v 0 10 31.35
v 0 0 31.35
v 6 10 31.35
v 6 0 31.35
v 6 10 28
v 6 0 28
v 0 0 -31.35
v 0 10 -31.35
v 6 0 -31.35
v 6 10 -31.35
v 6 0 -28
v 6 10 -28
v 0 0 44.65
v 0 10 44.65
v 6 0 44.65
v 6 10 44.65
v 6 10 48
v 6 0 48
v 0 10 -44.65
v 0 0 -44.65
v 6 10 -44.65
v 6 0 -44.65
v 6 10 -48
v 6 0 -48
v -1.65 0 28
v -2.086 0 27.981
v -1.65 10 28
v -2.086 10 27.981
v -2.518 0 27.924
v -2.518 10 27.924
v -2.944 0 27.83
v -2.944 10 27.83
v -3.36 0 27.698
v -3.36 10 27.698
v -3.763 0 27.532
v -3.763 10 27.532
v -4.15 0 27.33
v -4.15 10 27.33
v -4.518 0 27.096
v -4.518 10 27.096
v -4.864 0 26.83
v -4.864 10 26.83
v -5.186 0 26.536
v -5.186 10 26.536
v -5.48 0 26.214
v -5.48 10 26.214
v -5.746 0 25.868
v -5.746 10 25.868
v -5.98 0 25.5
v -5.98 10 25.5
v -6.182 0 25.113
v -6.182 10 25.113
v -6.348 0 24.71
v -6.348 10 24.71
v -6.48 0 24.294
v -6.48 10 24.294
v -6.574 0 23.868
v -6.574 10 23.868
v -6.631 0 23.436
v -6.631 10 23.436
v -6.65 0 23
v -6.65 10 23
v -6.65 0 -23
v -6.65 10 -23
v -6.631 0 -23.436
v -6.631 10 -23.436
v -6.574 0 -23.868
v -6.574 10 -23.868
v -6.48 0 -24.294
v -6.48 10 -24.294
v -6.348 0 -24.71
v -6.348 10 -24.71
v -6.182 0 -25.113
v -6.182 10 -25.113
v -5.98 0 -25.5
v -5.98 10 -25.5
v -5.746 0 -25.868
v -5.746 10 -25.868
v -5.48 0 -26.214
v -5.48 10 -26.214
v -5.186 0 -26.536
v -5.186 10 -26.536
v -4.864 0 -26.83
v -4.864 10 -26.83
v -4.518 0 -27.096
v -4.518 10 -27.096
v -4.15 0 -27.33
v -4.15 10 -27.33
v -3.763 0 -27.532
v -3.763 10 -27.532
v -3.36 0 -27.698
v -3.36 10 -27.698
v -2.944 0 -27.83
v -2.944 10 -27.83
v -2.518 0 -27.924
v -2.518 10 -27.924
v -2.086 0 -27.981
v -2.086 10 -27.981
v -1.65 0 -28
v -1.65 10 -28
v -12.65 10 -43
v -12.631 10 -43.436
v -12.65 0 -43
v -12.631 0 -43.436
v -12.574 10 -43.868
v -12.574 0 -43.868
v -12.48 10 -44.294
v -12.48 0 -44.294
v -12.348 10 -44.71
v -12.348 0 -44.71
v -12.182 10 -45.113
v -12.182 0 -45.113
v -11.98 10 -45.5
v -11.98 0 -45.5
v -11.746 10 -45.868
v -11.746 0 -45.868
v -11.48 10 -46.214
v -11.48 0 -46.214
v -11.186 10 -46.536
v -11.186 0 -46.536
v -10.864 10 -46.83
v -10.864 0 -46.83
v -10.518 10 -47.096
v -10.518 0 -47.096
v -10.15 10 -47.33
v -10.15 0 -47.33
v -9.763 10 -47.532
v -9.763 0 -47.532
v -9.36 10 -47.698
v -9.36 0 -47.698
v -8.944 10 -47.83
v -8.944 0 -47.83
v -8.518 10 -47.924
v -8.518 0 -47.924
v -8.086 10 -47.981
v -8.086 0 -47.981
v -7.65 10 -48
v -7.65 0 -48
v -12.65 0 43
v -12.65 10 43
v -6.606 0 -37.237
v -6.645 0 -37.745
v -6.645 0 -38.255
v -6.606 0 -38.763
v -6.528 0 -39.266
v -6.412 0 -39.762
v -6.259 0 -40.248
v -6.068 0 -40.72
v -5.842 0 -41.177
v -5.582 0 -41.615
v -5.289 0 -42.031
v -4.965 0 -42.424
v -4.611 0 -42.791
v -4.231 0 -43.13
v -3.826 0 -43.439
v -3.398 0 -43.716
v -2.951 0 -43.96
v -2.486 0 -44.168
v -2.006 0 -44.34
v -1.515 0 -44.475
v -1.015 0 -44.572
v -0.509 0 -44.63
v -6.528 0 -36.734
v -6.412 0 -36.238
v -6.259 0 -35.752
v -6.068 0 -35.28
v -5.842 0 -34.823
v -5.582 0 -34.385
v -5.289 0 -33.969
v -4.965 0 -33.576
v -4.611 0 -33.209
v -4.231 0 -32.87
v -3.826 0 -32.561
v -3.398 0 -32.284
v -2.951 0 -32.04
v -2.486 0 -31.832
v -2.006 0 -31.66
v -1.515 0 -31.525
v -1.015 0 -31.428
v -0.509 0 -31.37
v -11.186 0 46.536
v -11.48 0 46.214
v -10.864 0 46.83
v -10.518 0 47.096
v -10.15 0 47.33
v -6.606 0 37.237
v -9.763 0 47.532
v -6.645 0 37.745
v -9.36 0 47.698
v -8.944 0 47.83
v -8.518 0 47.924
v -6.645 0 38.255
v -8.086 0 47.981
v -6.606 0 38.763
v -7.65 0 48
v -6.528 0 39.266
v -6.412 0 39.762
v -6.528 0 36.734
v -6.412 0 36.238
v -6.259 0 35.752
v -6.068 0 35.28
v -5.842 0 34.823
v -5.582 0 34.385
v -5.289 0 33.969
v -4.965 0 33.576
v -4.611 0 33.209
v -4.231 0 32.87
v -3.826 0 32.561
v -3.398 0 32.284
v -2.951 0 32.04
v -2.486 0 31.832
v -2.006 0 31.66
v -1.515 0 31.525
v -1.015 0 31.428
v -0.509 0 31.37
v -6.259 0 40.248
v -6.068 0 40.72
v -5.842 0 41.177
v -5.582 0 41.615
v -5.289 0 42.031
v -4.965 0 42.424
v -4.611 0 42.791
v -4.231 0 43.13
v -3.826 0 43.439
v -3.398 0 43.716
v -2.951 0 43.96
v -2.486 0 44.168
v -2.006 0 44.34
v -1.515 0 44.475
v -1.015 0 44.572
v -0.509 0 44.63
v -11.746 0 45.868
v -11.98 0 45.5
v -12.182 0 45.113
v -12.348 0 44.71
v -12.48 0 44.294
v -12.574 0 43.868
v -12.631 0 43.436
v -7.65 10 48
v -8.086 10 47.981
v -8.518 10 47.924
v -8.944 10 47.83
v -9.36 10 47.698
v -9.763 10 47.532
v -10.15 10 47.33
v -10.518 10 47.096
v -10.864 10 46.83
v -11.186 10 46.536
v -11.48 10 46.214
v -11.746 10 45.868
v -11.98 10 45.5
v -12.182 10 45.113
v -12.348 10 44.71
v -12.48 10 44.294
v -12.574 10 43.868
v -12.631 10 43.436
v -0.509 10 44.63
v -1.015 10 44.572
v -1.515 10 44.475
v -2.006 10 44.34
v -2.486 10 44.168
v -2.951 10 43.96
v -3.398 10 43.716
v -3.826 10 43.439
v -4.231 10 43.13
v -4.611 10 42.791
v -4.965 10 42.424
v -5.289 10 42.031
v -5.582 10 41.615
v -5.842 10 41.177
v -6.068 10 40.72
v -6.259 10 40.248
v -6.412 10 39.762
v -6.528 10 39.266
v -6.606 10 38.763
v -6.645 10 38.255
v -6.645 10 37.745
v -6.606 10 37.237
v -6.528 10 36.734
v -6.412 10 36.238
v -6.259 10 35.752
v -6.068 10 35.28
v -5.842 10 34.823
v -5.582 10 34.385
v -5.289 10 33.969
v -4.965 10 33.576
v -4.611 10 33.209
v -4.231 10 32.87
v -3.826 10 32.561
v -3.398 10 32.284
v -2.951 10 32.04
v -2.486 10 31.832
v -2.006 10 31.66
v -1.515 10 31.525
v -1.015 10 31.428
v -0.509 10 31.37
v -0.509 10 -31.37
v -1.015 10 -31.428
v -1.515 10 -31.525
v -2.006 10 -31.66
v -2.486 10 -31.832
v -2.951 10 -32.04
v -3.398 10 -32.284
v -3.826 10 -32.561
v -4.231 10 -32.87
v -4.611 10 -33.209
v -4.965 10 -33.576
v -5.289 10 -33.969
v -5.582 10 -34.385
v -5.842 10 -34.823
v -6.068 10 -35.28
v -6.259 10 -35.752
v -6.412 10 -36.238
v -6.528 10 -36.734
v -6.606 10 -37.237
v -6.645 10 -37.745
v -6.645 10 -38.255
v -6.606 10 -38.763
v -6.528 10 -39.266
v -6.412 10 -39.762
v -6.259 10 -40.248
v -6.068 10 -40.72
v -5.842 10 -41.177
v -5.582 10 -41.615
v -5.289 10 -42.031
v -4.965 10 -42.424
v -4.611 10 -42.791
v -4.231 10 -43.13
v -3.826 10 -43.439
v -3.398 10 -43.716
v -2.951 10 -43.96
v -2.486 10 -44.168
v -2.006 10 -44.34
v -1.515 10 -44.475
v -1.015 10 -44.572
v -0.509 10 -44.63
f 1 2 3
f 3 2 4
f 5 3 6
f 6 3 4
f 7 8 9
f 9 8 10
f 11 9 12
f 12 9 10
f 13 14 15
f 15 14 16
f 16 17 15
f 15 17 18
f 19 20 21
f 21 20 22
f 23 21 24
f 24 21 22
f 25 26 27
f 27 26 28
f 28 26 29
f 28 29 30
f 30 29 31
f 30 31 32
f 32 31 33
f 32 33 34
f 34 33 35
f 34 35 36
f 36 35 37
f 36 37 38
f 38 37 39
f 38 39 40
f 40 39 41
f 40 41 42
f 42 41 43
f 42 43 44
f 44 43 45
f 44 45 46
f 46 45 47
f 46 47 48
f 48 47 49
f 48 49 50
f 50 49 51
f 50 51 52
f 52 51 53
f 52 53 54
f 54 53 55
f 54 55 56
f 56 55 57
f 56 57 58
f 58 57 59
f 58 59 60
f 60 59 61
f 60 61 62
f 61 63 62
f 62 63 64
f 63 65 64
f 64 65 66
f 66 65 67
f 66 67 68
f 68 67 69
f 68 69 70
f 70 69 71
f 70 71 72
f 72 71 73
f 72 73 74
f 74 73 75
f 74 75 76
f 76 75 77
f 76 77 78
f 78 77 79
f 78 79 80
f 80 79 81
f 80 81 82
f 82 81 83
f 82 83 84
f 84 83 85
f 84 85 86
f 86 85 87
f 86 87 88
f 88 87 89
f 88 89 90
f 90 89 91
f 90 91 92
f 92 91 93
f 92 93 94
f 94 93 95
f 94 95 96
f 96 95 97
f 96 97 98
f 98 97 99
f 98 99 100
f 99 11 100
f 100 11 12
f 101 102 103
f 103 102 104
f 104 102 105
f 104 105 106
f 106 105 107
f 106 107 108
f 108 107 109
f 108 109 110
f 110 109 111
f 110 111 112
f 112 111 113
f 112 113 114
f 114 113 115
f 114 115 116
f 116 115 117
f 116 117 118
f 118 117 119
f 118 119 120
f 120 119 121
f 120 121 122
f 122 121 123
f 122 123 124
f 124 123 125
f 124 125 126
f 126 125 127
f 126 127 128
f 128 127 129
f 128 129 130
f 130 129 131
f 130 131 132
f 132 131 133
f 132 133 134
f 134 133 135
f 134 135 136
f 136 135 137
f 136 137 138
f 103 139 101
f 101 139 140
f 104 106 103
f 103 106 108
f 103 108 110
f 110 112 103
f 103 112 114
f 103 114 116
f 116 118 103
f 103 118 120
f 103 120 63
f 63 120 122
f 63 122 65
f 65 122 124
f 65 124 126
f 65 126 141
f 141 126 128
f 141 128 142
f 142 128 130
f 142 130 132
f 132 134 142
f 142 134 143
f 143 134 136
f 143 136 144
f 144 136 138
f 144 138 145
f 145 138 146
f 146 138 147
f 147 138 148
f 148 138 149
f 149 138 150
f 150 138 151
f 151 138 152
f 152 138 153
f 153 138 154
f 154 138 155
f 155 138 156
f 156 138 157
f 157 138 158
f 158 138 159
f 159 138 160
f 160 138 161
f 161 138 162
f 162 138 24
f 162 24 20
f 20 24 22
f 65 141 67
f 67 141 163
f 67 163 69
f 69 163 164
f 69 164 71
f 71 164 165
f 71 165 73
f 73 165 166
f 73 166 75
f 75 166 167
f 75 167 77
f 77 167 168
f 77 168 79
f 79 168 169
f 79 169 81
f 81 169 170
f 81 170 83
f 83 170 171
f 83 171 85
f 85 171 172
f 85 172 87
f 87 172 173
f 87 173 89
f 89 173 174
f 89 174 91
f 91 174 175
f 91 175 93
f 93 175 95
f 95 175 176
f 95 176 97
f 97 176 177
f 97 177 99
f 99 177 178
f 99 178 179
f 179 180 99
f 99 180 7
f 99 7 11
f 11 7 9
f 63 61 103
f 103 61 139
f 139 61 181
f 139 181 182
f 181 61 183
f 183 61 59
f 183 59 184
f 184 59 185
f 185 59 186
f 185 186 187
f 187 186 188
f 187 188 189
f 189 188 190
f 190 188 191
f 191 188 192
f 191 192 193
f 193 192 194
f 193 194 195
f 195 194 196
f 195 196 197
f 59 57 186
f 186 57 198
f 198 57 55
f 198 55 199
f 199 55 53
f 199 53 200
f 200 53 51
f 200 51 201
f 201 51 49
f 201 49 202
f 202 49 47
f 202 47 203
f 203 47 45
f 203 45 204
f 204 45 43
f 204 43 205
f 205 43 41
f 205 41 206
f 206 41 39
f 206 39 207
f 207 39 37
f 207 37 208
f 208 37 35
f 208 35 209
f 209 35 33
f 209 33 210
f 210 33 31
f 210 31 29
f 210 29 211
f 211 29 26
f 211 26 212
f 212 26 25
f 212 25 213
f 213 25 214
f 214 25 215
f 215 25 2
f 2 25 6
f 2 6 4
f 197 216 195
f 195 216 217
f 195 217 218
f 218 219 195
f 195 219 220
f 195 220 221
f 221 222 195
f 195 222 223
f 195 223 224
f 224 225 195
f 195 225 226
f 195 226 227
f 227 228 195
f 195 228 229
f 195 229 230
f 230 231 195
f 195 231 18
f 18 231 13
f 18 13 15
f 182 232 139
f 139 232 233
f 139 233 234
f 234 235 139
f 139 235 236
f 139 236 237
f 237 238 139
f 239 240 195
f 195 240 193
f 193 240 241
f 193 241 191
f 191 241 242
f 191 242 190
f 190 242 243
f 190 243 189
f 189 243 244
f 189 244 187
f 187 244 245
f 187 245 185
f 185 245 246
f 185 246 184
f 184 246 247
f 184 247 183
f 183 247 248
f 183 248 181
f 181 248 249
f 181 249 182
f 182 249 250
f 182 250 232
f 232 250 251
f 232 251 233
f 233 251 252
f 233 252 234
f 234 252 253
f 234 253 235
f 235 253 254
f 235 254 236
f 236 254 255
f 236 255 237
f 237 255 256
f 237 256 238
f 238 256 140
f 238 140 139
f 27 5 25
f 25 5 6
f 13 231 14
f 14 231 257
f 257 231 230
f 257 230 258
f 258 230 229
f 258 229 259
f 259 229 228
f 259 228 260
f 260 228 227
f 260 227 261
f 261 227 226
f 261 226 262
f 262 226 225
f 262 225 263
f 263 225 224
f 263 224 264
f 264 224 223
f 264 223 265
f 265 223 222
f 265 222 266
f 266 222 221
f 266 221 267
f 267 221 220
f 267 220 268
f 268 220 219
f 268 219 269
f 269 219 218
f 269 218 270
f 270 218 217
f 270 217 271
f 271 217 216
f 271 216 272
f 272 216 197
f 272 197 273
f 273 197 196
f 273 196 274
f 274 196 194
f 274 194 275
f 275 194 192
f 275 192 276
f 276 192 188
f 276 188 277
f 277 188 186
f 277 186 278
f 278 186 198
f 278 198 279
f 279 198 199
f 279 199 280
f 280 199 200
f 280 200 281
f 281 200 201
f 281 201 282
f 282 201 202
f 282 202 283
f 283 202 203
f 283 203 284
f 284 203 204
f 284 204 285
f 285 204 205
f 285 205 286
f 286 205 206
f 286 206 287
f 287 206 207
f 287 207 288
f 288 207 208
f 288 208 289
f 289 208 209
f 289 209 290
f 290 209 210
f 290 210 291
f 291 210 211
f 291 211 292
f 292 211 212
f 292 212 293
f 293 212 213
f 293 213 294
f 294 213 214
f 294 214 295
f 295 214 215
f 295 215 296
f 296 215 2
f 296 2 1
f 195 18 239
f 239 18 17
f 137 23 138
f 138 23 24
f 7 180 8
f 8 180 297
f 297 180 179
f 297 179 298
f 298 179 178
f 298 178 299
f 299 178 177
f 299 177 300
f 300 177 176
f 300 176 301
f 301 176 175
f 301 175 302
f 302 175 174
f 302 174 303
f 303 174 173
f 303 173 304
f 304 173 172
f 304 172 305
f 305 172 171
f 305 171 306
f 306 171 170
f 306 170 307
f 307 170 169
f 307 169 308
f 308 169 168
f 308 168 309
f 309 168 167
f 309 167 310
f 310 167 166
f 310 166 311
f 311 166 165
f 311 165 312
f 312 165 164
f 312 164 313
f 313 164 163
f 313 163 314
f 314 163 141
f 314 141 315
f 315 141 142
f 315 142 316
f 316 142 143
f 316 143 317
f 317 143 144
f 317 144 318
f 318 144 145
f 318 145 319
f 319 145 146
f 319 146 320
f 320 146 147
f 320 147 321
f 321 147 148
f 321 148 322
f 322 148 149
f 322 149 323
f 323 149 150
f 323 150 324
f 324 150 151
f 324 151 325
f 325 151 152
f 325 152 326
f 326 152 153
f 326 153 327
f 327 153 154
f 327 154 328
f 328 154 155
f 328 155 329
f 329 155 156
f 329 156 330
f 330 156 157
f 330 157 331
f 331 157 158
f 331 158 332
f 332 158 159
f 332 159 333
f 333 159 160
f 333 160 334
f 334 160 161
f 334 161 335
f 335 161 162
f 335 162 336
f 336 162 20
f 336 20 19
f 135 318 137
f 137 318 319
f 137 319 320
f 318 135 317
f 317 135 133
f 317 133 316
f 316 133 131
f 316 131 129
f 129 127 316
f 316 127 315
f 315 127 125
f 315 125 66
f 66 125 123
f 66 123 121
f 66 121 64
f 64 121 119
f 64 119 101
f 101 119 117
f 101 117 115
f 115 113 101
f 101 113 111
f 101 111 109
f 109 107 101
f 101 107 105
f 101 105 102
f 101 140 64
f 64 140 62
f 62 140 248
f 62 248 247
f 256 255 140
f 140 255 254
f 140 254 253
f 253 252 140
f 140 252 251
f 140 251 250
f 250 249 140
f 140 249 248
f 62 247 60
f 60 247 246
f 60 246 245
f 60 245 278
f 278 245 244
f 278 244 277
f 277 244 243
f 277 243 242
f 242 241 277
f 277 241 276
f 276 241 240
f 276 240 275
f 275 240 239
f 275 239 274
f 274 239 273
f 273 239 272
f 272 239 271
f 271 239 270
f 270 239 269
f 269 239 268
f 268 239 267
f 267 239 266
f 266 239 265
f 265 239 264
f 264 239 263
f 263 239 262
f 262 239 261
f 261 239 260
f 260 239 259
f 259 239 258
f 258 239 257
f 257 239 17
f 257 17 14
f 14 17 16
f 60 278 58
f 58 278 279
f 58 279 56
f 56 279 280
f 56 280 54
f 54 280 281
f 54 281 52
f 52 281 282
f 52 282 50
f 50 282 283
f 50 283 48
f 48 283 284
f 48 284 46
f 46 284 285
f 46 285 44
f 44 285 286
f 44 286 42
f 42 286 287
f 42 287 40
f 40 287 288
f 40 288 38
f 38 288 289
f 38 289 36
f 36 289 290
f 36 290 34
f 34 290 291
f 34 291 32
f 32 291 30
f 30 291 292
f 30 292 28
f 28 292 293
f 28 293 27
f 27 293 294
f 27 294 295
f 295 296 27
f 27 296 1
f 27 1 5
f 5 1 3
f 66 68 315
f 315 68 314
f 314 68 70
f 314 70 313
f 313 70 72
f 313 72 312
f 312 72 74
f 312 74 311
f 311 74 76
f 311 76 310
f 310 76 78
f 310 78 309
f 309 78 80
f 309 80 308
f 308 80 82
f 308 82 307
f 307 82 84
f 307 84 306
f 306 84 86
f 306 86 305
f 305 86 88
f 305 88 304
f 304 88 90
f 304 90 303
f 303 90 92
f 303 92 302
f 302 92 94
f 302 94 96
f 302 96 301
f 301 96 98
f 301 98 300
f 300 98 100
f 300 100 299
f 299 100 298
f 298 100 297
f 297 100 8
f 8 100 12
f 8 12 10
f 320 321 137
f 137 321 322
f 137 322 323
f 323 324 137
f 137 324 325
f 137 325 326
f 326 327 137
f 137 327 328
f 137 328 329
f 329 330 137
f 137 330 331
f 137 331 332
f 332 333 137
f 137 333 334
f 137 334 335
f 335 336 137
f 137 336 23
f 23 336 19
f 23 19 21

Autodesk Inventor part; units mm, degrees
ref_plane "YZ Plane" through (0, 0, 0) normal (1, 0, 0) x (0, 1, 0)
ref_plane "XZ Plane" through (0, 0, 0) normal (0, 1, 0) x (-1, 0, 0)
ref_plane "XY Plane" through (0, 0, 0) normal (0, 0, 1) x (1, 0, 0)
sketch "Sketch1" plane through (0, 0, 0) normal (0, 1, 0) x (-1, 0, 0)
  circle A0 centre (0, 38) radius 6.65
  circle A1 centre (0, -38) radius 6.65
  circle A2 centre (0, 38) radius 10
  circle A3 centre (0, -38) radius 10
  line L0 (6.65, 48) -> (12.65, 48)
  line L1 (12.65, 48) -> (12.65, -48)
  line L2 (12.65, -48) -> (6.65, -48)
  line L3 (6.65, -48) -> (6.65, 48)
  line L4 (12.65, 48) -> (0, 48)
  line L5 (12.65, -48) -> (0, -48)
  line L6 (0, 28) -> (6.65, 28)
  line L7 (0, -28) -> (6.65, -28)
  line L8 (0, 48) -> (0, -48)
  point P0 (0, 0)
  point P1 (0, 31.35)
  point P2 (0, -31.35)
  point P3 (0, -44.65)
  point P4 (6.65, -45.4684)
  point P5 (0, 44.65)
  dimension "d0" = 38
  dimension "d1" = 38
  dimension "d2" = 13.3
  dimension "d3" = 20
  dimension "d4" = 20
  dimension "d5" = 6
extrude "Extrusion1" add sketch "Sketch1" along normal blind 10 contours L3 A2 L8 A0 | L3 A2 | A0 L8 A2 L3 | L3 L6 A2 | A2 L3 L0 L1 L2 A3 | A2 L4 L3 | L7 L3 A3 | A3 L3 A1 L8 | L8 A1 L3 A3 | A3 L3 L5 | A3 L3
fillet "Fillet1" radius 5 4 edges at (-12.65, 5, 48) (-12.65, 5, -48) (-6.65, 5, -28) (-6.65, 5, 28)
sketch "Sketch2" plane through (0, 0, -44.65) normal (1, 0, 0) x (0, 0, -1)
  line L0 (0, 0) -> (3.35, 0) projected
  line L1 (3.35, 0) -> (3.35, 10) projected
  line L2 (0, 10) -> (3.35, 10) projected
  line L3 (0, 0) -> (0, 10) projected
  line L4 (-16.65, 0) -> (-13.3, 0) projected
  line L5 (-13.3, 0) -> (-13.3, 10) projected
  line L6 (-16.65, 10) -> (-13.3, 10) projected
  line L7 (-16.65, 0) -> (-16.65, 10) projected
  line L8 (-76, 0) -> (-72.65, 0) projected
  line L9 (-72.65, 0) -> (-72.65, 10) projected
  line L10 (-76, 10) -> (-72.65, 10) projected
  line L11 (-76, 0) -> (-76, 10) projected
  line L12 (-92.65, 0) -> (-89.3, 0) projected
  line L13 (-89.3, 0) -> (-89.3, 10) projected
  line L14 (-92.65, 10) -> (-89.3, 10) projected
  line L15 (-92.65, 0) -> (-92.65, 10) projected
  point P0 (-44.65, 0)
extrude "Extrusion2" add sketch "Sketch2" along normal blind 6
properties part number "Base"
